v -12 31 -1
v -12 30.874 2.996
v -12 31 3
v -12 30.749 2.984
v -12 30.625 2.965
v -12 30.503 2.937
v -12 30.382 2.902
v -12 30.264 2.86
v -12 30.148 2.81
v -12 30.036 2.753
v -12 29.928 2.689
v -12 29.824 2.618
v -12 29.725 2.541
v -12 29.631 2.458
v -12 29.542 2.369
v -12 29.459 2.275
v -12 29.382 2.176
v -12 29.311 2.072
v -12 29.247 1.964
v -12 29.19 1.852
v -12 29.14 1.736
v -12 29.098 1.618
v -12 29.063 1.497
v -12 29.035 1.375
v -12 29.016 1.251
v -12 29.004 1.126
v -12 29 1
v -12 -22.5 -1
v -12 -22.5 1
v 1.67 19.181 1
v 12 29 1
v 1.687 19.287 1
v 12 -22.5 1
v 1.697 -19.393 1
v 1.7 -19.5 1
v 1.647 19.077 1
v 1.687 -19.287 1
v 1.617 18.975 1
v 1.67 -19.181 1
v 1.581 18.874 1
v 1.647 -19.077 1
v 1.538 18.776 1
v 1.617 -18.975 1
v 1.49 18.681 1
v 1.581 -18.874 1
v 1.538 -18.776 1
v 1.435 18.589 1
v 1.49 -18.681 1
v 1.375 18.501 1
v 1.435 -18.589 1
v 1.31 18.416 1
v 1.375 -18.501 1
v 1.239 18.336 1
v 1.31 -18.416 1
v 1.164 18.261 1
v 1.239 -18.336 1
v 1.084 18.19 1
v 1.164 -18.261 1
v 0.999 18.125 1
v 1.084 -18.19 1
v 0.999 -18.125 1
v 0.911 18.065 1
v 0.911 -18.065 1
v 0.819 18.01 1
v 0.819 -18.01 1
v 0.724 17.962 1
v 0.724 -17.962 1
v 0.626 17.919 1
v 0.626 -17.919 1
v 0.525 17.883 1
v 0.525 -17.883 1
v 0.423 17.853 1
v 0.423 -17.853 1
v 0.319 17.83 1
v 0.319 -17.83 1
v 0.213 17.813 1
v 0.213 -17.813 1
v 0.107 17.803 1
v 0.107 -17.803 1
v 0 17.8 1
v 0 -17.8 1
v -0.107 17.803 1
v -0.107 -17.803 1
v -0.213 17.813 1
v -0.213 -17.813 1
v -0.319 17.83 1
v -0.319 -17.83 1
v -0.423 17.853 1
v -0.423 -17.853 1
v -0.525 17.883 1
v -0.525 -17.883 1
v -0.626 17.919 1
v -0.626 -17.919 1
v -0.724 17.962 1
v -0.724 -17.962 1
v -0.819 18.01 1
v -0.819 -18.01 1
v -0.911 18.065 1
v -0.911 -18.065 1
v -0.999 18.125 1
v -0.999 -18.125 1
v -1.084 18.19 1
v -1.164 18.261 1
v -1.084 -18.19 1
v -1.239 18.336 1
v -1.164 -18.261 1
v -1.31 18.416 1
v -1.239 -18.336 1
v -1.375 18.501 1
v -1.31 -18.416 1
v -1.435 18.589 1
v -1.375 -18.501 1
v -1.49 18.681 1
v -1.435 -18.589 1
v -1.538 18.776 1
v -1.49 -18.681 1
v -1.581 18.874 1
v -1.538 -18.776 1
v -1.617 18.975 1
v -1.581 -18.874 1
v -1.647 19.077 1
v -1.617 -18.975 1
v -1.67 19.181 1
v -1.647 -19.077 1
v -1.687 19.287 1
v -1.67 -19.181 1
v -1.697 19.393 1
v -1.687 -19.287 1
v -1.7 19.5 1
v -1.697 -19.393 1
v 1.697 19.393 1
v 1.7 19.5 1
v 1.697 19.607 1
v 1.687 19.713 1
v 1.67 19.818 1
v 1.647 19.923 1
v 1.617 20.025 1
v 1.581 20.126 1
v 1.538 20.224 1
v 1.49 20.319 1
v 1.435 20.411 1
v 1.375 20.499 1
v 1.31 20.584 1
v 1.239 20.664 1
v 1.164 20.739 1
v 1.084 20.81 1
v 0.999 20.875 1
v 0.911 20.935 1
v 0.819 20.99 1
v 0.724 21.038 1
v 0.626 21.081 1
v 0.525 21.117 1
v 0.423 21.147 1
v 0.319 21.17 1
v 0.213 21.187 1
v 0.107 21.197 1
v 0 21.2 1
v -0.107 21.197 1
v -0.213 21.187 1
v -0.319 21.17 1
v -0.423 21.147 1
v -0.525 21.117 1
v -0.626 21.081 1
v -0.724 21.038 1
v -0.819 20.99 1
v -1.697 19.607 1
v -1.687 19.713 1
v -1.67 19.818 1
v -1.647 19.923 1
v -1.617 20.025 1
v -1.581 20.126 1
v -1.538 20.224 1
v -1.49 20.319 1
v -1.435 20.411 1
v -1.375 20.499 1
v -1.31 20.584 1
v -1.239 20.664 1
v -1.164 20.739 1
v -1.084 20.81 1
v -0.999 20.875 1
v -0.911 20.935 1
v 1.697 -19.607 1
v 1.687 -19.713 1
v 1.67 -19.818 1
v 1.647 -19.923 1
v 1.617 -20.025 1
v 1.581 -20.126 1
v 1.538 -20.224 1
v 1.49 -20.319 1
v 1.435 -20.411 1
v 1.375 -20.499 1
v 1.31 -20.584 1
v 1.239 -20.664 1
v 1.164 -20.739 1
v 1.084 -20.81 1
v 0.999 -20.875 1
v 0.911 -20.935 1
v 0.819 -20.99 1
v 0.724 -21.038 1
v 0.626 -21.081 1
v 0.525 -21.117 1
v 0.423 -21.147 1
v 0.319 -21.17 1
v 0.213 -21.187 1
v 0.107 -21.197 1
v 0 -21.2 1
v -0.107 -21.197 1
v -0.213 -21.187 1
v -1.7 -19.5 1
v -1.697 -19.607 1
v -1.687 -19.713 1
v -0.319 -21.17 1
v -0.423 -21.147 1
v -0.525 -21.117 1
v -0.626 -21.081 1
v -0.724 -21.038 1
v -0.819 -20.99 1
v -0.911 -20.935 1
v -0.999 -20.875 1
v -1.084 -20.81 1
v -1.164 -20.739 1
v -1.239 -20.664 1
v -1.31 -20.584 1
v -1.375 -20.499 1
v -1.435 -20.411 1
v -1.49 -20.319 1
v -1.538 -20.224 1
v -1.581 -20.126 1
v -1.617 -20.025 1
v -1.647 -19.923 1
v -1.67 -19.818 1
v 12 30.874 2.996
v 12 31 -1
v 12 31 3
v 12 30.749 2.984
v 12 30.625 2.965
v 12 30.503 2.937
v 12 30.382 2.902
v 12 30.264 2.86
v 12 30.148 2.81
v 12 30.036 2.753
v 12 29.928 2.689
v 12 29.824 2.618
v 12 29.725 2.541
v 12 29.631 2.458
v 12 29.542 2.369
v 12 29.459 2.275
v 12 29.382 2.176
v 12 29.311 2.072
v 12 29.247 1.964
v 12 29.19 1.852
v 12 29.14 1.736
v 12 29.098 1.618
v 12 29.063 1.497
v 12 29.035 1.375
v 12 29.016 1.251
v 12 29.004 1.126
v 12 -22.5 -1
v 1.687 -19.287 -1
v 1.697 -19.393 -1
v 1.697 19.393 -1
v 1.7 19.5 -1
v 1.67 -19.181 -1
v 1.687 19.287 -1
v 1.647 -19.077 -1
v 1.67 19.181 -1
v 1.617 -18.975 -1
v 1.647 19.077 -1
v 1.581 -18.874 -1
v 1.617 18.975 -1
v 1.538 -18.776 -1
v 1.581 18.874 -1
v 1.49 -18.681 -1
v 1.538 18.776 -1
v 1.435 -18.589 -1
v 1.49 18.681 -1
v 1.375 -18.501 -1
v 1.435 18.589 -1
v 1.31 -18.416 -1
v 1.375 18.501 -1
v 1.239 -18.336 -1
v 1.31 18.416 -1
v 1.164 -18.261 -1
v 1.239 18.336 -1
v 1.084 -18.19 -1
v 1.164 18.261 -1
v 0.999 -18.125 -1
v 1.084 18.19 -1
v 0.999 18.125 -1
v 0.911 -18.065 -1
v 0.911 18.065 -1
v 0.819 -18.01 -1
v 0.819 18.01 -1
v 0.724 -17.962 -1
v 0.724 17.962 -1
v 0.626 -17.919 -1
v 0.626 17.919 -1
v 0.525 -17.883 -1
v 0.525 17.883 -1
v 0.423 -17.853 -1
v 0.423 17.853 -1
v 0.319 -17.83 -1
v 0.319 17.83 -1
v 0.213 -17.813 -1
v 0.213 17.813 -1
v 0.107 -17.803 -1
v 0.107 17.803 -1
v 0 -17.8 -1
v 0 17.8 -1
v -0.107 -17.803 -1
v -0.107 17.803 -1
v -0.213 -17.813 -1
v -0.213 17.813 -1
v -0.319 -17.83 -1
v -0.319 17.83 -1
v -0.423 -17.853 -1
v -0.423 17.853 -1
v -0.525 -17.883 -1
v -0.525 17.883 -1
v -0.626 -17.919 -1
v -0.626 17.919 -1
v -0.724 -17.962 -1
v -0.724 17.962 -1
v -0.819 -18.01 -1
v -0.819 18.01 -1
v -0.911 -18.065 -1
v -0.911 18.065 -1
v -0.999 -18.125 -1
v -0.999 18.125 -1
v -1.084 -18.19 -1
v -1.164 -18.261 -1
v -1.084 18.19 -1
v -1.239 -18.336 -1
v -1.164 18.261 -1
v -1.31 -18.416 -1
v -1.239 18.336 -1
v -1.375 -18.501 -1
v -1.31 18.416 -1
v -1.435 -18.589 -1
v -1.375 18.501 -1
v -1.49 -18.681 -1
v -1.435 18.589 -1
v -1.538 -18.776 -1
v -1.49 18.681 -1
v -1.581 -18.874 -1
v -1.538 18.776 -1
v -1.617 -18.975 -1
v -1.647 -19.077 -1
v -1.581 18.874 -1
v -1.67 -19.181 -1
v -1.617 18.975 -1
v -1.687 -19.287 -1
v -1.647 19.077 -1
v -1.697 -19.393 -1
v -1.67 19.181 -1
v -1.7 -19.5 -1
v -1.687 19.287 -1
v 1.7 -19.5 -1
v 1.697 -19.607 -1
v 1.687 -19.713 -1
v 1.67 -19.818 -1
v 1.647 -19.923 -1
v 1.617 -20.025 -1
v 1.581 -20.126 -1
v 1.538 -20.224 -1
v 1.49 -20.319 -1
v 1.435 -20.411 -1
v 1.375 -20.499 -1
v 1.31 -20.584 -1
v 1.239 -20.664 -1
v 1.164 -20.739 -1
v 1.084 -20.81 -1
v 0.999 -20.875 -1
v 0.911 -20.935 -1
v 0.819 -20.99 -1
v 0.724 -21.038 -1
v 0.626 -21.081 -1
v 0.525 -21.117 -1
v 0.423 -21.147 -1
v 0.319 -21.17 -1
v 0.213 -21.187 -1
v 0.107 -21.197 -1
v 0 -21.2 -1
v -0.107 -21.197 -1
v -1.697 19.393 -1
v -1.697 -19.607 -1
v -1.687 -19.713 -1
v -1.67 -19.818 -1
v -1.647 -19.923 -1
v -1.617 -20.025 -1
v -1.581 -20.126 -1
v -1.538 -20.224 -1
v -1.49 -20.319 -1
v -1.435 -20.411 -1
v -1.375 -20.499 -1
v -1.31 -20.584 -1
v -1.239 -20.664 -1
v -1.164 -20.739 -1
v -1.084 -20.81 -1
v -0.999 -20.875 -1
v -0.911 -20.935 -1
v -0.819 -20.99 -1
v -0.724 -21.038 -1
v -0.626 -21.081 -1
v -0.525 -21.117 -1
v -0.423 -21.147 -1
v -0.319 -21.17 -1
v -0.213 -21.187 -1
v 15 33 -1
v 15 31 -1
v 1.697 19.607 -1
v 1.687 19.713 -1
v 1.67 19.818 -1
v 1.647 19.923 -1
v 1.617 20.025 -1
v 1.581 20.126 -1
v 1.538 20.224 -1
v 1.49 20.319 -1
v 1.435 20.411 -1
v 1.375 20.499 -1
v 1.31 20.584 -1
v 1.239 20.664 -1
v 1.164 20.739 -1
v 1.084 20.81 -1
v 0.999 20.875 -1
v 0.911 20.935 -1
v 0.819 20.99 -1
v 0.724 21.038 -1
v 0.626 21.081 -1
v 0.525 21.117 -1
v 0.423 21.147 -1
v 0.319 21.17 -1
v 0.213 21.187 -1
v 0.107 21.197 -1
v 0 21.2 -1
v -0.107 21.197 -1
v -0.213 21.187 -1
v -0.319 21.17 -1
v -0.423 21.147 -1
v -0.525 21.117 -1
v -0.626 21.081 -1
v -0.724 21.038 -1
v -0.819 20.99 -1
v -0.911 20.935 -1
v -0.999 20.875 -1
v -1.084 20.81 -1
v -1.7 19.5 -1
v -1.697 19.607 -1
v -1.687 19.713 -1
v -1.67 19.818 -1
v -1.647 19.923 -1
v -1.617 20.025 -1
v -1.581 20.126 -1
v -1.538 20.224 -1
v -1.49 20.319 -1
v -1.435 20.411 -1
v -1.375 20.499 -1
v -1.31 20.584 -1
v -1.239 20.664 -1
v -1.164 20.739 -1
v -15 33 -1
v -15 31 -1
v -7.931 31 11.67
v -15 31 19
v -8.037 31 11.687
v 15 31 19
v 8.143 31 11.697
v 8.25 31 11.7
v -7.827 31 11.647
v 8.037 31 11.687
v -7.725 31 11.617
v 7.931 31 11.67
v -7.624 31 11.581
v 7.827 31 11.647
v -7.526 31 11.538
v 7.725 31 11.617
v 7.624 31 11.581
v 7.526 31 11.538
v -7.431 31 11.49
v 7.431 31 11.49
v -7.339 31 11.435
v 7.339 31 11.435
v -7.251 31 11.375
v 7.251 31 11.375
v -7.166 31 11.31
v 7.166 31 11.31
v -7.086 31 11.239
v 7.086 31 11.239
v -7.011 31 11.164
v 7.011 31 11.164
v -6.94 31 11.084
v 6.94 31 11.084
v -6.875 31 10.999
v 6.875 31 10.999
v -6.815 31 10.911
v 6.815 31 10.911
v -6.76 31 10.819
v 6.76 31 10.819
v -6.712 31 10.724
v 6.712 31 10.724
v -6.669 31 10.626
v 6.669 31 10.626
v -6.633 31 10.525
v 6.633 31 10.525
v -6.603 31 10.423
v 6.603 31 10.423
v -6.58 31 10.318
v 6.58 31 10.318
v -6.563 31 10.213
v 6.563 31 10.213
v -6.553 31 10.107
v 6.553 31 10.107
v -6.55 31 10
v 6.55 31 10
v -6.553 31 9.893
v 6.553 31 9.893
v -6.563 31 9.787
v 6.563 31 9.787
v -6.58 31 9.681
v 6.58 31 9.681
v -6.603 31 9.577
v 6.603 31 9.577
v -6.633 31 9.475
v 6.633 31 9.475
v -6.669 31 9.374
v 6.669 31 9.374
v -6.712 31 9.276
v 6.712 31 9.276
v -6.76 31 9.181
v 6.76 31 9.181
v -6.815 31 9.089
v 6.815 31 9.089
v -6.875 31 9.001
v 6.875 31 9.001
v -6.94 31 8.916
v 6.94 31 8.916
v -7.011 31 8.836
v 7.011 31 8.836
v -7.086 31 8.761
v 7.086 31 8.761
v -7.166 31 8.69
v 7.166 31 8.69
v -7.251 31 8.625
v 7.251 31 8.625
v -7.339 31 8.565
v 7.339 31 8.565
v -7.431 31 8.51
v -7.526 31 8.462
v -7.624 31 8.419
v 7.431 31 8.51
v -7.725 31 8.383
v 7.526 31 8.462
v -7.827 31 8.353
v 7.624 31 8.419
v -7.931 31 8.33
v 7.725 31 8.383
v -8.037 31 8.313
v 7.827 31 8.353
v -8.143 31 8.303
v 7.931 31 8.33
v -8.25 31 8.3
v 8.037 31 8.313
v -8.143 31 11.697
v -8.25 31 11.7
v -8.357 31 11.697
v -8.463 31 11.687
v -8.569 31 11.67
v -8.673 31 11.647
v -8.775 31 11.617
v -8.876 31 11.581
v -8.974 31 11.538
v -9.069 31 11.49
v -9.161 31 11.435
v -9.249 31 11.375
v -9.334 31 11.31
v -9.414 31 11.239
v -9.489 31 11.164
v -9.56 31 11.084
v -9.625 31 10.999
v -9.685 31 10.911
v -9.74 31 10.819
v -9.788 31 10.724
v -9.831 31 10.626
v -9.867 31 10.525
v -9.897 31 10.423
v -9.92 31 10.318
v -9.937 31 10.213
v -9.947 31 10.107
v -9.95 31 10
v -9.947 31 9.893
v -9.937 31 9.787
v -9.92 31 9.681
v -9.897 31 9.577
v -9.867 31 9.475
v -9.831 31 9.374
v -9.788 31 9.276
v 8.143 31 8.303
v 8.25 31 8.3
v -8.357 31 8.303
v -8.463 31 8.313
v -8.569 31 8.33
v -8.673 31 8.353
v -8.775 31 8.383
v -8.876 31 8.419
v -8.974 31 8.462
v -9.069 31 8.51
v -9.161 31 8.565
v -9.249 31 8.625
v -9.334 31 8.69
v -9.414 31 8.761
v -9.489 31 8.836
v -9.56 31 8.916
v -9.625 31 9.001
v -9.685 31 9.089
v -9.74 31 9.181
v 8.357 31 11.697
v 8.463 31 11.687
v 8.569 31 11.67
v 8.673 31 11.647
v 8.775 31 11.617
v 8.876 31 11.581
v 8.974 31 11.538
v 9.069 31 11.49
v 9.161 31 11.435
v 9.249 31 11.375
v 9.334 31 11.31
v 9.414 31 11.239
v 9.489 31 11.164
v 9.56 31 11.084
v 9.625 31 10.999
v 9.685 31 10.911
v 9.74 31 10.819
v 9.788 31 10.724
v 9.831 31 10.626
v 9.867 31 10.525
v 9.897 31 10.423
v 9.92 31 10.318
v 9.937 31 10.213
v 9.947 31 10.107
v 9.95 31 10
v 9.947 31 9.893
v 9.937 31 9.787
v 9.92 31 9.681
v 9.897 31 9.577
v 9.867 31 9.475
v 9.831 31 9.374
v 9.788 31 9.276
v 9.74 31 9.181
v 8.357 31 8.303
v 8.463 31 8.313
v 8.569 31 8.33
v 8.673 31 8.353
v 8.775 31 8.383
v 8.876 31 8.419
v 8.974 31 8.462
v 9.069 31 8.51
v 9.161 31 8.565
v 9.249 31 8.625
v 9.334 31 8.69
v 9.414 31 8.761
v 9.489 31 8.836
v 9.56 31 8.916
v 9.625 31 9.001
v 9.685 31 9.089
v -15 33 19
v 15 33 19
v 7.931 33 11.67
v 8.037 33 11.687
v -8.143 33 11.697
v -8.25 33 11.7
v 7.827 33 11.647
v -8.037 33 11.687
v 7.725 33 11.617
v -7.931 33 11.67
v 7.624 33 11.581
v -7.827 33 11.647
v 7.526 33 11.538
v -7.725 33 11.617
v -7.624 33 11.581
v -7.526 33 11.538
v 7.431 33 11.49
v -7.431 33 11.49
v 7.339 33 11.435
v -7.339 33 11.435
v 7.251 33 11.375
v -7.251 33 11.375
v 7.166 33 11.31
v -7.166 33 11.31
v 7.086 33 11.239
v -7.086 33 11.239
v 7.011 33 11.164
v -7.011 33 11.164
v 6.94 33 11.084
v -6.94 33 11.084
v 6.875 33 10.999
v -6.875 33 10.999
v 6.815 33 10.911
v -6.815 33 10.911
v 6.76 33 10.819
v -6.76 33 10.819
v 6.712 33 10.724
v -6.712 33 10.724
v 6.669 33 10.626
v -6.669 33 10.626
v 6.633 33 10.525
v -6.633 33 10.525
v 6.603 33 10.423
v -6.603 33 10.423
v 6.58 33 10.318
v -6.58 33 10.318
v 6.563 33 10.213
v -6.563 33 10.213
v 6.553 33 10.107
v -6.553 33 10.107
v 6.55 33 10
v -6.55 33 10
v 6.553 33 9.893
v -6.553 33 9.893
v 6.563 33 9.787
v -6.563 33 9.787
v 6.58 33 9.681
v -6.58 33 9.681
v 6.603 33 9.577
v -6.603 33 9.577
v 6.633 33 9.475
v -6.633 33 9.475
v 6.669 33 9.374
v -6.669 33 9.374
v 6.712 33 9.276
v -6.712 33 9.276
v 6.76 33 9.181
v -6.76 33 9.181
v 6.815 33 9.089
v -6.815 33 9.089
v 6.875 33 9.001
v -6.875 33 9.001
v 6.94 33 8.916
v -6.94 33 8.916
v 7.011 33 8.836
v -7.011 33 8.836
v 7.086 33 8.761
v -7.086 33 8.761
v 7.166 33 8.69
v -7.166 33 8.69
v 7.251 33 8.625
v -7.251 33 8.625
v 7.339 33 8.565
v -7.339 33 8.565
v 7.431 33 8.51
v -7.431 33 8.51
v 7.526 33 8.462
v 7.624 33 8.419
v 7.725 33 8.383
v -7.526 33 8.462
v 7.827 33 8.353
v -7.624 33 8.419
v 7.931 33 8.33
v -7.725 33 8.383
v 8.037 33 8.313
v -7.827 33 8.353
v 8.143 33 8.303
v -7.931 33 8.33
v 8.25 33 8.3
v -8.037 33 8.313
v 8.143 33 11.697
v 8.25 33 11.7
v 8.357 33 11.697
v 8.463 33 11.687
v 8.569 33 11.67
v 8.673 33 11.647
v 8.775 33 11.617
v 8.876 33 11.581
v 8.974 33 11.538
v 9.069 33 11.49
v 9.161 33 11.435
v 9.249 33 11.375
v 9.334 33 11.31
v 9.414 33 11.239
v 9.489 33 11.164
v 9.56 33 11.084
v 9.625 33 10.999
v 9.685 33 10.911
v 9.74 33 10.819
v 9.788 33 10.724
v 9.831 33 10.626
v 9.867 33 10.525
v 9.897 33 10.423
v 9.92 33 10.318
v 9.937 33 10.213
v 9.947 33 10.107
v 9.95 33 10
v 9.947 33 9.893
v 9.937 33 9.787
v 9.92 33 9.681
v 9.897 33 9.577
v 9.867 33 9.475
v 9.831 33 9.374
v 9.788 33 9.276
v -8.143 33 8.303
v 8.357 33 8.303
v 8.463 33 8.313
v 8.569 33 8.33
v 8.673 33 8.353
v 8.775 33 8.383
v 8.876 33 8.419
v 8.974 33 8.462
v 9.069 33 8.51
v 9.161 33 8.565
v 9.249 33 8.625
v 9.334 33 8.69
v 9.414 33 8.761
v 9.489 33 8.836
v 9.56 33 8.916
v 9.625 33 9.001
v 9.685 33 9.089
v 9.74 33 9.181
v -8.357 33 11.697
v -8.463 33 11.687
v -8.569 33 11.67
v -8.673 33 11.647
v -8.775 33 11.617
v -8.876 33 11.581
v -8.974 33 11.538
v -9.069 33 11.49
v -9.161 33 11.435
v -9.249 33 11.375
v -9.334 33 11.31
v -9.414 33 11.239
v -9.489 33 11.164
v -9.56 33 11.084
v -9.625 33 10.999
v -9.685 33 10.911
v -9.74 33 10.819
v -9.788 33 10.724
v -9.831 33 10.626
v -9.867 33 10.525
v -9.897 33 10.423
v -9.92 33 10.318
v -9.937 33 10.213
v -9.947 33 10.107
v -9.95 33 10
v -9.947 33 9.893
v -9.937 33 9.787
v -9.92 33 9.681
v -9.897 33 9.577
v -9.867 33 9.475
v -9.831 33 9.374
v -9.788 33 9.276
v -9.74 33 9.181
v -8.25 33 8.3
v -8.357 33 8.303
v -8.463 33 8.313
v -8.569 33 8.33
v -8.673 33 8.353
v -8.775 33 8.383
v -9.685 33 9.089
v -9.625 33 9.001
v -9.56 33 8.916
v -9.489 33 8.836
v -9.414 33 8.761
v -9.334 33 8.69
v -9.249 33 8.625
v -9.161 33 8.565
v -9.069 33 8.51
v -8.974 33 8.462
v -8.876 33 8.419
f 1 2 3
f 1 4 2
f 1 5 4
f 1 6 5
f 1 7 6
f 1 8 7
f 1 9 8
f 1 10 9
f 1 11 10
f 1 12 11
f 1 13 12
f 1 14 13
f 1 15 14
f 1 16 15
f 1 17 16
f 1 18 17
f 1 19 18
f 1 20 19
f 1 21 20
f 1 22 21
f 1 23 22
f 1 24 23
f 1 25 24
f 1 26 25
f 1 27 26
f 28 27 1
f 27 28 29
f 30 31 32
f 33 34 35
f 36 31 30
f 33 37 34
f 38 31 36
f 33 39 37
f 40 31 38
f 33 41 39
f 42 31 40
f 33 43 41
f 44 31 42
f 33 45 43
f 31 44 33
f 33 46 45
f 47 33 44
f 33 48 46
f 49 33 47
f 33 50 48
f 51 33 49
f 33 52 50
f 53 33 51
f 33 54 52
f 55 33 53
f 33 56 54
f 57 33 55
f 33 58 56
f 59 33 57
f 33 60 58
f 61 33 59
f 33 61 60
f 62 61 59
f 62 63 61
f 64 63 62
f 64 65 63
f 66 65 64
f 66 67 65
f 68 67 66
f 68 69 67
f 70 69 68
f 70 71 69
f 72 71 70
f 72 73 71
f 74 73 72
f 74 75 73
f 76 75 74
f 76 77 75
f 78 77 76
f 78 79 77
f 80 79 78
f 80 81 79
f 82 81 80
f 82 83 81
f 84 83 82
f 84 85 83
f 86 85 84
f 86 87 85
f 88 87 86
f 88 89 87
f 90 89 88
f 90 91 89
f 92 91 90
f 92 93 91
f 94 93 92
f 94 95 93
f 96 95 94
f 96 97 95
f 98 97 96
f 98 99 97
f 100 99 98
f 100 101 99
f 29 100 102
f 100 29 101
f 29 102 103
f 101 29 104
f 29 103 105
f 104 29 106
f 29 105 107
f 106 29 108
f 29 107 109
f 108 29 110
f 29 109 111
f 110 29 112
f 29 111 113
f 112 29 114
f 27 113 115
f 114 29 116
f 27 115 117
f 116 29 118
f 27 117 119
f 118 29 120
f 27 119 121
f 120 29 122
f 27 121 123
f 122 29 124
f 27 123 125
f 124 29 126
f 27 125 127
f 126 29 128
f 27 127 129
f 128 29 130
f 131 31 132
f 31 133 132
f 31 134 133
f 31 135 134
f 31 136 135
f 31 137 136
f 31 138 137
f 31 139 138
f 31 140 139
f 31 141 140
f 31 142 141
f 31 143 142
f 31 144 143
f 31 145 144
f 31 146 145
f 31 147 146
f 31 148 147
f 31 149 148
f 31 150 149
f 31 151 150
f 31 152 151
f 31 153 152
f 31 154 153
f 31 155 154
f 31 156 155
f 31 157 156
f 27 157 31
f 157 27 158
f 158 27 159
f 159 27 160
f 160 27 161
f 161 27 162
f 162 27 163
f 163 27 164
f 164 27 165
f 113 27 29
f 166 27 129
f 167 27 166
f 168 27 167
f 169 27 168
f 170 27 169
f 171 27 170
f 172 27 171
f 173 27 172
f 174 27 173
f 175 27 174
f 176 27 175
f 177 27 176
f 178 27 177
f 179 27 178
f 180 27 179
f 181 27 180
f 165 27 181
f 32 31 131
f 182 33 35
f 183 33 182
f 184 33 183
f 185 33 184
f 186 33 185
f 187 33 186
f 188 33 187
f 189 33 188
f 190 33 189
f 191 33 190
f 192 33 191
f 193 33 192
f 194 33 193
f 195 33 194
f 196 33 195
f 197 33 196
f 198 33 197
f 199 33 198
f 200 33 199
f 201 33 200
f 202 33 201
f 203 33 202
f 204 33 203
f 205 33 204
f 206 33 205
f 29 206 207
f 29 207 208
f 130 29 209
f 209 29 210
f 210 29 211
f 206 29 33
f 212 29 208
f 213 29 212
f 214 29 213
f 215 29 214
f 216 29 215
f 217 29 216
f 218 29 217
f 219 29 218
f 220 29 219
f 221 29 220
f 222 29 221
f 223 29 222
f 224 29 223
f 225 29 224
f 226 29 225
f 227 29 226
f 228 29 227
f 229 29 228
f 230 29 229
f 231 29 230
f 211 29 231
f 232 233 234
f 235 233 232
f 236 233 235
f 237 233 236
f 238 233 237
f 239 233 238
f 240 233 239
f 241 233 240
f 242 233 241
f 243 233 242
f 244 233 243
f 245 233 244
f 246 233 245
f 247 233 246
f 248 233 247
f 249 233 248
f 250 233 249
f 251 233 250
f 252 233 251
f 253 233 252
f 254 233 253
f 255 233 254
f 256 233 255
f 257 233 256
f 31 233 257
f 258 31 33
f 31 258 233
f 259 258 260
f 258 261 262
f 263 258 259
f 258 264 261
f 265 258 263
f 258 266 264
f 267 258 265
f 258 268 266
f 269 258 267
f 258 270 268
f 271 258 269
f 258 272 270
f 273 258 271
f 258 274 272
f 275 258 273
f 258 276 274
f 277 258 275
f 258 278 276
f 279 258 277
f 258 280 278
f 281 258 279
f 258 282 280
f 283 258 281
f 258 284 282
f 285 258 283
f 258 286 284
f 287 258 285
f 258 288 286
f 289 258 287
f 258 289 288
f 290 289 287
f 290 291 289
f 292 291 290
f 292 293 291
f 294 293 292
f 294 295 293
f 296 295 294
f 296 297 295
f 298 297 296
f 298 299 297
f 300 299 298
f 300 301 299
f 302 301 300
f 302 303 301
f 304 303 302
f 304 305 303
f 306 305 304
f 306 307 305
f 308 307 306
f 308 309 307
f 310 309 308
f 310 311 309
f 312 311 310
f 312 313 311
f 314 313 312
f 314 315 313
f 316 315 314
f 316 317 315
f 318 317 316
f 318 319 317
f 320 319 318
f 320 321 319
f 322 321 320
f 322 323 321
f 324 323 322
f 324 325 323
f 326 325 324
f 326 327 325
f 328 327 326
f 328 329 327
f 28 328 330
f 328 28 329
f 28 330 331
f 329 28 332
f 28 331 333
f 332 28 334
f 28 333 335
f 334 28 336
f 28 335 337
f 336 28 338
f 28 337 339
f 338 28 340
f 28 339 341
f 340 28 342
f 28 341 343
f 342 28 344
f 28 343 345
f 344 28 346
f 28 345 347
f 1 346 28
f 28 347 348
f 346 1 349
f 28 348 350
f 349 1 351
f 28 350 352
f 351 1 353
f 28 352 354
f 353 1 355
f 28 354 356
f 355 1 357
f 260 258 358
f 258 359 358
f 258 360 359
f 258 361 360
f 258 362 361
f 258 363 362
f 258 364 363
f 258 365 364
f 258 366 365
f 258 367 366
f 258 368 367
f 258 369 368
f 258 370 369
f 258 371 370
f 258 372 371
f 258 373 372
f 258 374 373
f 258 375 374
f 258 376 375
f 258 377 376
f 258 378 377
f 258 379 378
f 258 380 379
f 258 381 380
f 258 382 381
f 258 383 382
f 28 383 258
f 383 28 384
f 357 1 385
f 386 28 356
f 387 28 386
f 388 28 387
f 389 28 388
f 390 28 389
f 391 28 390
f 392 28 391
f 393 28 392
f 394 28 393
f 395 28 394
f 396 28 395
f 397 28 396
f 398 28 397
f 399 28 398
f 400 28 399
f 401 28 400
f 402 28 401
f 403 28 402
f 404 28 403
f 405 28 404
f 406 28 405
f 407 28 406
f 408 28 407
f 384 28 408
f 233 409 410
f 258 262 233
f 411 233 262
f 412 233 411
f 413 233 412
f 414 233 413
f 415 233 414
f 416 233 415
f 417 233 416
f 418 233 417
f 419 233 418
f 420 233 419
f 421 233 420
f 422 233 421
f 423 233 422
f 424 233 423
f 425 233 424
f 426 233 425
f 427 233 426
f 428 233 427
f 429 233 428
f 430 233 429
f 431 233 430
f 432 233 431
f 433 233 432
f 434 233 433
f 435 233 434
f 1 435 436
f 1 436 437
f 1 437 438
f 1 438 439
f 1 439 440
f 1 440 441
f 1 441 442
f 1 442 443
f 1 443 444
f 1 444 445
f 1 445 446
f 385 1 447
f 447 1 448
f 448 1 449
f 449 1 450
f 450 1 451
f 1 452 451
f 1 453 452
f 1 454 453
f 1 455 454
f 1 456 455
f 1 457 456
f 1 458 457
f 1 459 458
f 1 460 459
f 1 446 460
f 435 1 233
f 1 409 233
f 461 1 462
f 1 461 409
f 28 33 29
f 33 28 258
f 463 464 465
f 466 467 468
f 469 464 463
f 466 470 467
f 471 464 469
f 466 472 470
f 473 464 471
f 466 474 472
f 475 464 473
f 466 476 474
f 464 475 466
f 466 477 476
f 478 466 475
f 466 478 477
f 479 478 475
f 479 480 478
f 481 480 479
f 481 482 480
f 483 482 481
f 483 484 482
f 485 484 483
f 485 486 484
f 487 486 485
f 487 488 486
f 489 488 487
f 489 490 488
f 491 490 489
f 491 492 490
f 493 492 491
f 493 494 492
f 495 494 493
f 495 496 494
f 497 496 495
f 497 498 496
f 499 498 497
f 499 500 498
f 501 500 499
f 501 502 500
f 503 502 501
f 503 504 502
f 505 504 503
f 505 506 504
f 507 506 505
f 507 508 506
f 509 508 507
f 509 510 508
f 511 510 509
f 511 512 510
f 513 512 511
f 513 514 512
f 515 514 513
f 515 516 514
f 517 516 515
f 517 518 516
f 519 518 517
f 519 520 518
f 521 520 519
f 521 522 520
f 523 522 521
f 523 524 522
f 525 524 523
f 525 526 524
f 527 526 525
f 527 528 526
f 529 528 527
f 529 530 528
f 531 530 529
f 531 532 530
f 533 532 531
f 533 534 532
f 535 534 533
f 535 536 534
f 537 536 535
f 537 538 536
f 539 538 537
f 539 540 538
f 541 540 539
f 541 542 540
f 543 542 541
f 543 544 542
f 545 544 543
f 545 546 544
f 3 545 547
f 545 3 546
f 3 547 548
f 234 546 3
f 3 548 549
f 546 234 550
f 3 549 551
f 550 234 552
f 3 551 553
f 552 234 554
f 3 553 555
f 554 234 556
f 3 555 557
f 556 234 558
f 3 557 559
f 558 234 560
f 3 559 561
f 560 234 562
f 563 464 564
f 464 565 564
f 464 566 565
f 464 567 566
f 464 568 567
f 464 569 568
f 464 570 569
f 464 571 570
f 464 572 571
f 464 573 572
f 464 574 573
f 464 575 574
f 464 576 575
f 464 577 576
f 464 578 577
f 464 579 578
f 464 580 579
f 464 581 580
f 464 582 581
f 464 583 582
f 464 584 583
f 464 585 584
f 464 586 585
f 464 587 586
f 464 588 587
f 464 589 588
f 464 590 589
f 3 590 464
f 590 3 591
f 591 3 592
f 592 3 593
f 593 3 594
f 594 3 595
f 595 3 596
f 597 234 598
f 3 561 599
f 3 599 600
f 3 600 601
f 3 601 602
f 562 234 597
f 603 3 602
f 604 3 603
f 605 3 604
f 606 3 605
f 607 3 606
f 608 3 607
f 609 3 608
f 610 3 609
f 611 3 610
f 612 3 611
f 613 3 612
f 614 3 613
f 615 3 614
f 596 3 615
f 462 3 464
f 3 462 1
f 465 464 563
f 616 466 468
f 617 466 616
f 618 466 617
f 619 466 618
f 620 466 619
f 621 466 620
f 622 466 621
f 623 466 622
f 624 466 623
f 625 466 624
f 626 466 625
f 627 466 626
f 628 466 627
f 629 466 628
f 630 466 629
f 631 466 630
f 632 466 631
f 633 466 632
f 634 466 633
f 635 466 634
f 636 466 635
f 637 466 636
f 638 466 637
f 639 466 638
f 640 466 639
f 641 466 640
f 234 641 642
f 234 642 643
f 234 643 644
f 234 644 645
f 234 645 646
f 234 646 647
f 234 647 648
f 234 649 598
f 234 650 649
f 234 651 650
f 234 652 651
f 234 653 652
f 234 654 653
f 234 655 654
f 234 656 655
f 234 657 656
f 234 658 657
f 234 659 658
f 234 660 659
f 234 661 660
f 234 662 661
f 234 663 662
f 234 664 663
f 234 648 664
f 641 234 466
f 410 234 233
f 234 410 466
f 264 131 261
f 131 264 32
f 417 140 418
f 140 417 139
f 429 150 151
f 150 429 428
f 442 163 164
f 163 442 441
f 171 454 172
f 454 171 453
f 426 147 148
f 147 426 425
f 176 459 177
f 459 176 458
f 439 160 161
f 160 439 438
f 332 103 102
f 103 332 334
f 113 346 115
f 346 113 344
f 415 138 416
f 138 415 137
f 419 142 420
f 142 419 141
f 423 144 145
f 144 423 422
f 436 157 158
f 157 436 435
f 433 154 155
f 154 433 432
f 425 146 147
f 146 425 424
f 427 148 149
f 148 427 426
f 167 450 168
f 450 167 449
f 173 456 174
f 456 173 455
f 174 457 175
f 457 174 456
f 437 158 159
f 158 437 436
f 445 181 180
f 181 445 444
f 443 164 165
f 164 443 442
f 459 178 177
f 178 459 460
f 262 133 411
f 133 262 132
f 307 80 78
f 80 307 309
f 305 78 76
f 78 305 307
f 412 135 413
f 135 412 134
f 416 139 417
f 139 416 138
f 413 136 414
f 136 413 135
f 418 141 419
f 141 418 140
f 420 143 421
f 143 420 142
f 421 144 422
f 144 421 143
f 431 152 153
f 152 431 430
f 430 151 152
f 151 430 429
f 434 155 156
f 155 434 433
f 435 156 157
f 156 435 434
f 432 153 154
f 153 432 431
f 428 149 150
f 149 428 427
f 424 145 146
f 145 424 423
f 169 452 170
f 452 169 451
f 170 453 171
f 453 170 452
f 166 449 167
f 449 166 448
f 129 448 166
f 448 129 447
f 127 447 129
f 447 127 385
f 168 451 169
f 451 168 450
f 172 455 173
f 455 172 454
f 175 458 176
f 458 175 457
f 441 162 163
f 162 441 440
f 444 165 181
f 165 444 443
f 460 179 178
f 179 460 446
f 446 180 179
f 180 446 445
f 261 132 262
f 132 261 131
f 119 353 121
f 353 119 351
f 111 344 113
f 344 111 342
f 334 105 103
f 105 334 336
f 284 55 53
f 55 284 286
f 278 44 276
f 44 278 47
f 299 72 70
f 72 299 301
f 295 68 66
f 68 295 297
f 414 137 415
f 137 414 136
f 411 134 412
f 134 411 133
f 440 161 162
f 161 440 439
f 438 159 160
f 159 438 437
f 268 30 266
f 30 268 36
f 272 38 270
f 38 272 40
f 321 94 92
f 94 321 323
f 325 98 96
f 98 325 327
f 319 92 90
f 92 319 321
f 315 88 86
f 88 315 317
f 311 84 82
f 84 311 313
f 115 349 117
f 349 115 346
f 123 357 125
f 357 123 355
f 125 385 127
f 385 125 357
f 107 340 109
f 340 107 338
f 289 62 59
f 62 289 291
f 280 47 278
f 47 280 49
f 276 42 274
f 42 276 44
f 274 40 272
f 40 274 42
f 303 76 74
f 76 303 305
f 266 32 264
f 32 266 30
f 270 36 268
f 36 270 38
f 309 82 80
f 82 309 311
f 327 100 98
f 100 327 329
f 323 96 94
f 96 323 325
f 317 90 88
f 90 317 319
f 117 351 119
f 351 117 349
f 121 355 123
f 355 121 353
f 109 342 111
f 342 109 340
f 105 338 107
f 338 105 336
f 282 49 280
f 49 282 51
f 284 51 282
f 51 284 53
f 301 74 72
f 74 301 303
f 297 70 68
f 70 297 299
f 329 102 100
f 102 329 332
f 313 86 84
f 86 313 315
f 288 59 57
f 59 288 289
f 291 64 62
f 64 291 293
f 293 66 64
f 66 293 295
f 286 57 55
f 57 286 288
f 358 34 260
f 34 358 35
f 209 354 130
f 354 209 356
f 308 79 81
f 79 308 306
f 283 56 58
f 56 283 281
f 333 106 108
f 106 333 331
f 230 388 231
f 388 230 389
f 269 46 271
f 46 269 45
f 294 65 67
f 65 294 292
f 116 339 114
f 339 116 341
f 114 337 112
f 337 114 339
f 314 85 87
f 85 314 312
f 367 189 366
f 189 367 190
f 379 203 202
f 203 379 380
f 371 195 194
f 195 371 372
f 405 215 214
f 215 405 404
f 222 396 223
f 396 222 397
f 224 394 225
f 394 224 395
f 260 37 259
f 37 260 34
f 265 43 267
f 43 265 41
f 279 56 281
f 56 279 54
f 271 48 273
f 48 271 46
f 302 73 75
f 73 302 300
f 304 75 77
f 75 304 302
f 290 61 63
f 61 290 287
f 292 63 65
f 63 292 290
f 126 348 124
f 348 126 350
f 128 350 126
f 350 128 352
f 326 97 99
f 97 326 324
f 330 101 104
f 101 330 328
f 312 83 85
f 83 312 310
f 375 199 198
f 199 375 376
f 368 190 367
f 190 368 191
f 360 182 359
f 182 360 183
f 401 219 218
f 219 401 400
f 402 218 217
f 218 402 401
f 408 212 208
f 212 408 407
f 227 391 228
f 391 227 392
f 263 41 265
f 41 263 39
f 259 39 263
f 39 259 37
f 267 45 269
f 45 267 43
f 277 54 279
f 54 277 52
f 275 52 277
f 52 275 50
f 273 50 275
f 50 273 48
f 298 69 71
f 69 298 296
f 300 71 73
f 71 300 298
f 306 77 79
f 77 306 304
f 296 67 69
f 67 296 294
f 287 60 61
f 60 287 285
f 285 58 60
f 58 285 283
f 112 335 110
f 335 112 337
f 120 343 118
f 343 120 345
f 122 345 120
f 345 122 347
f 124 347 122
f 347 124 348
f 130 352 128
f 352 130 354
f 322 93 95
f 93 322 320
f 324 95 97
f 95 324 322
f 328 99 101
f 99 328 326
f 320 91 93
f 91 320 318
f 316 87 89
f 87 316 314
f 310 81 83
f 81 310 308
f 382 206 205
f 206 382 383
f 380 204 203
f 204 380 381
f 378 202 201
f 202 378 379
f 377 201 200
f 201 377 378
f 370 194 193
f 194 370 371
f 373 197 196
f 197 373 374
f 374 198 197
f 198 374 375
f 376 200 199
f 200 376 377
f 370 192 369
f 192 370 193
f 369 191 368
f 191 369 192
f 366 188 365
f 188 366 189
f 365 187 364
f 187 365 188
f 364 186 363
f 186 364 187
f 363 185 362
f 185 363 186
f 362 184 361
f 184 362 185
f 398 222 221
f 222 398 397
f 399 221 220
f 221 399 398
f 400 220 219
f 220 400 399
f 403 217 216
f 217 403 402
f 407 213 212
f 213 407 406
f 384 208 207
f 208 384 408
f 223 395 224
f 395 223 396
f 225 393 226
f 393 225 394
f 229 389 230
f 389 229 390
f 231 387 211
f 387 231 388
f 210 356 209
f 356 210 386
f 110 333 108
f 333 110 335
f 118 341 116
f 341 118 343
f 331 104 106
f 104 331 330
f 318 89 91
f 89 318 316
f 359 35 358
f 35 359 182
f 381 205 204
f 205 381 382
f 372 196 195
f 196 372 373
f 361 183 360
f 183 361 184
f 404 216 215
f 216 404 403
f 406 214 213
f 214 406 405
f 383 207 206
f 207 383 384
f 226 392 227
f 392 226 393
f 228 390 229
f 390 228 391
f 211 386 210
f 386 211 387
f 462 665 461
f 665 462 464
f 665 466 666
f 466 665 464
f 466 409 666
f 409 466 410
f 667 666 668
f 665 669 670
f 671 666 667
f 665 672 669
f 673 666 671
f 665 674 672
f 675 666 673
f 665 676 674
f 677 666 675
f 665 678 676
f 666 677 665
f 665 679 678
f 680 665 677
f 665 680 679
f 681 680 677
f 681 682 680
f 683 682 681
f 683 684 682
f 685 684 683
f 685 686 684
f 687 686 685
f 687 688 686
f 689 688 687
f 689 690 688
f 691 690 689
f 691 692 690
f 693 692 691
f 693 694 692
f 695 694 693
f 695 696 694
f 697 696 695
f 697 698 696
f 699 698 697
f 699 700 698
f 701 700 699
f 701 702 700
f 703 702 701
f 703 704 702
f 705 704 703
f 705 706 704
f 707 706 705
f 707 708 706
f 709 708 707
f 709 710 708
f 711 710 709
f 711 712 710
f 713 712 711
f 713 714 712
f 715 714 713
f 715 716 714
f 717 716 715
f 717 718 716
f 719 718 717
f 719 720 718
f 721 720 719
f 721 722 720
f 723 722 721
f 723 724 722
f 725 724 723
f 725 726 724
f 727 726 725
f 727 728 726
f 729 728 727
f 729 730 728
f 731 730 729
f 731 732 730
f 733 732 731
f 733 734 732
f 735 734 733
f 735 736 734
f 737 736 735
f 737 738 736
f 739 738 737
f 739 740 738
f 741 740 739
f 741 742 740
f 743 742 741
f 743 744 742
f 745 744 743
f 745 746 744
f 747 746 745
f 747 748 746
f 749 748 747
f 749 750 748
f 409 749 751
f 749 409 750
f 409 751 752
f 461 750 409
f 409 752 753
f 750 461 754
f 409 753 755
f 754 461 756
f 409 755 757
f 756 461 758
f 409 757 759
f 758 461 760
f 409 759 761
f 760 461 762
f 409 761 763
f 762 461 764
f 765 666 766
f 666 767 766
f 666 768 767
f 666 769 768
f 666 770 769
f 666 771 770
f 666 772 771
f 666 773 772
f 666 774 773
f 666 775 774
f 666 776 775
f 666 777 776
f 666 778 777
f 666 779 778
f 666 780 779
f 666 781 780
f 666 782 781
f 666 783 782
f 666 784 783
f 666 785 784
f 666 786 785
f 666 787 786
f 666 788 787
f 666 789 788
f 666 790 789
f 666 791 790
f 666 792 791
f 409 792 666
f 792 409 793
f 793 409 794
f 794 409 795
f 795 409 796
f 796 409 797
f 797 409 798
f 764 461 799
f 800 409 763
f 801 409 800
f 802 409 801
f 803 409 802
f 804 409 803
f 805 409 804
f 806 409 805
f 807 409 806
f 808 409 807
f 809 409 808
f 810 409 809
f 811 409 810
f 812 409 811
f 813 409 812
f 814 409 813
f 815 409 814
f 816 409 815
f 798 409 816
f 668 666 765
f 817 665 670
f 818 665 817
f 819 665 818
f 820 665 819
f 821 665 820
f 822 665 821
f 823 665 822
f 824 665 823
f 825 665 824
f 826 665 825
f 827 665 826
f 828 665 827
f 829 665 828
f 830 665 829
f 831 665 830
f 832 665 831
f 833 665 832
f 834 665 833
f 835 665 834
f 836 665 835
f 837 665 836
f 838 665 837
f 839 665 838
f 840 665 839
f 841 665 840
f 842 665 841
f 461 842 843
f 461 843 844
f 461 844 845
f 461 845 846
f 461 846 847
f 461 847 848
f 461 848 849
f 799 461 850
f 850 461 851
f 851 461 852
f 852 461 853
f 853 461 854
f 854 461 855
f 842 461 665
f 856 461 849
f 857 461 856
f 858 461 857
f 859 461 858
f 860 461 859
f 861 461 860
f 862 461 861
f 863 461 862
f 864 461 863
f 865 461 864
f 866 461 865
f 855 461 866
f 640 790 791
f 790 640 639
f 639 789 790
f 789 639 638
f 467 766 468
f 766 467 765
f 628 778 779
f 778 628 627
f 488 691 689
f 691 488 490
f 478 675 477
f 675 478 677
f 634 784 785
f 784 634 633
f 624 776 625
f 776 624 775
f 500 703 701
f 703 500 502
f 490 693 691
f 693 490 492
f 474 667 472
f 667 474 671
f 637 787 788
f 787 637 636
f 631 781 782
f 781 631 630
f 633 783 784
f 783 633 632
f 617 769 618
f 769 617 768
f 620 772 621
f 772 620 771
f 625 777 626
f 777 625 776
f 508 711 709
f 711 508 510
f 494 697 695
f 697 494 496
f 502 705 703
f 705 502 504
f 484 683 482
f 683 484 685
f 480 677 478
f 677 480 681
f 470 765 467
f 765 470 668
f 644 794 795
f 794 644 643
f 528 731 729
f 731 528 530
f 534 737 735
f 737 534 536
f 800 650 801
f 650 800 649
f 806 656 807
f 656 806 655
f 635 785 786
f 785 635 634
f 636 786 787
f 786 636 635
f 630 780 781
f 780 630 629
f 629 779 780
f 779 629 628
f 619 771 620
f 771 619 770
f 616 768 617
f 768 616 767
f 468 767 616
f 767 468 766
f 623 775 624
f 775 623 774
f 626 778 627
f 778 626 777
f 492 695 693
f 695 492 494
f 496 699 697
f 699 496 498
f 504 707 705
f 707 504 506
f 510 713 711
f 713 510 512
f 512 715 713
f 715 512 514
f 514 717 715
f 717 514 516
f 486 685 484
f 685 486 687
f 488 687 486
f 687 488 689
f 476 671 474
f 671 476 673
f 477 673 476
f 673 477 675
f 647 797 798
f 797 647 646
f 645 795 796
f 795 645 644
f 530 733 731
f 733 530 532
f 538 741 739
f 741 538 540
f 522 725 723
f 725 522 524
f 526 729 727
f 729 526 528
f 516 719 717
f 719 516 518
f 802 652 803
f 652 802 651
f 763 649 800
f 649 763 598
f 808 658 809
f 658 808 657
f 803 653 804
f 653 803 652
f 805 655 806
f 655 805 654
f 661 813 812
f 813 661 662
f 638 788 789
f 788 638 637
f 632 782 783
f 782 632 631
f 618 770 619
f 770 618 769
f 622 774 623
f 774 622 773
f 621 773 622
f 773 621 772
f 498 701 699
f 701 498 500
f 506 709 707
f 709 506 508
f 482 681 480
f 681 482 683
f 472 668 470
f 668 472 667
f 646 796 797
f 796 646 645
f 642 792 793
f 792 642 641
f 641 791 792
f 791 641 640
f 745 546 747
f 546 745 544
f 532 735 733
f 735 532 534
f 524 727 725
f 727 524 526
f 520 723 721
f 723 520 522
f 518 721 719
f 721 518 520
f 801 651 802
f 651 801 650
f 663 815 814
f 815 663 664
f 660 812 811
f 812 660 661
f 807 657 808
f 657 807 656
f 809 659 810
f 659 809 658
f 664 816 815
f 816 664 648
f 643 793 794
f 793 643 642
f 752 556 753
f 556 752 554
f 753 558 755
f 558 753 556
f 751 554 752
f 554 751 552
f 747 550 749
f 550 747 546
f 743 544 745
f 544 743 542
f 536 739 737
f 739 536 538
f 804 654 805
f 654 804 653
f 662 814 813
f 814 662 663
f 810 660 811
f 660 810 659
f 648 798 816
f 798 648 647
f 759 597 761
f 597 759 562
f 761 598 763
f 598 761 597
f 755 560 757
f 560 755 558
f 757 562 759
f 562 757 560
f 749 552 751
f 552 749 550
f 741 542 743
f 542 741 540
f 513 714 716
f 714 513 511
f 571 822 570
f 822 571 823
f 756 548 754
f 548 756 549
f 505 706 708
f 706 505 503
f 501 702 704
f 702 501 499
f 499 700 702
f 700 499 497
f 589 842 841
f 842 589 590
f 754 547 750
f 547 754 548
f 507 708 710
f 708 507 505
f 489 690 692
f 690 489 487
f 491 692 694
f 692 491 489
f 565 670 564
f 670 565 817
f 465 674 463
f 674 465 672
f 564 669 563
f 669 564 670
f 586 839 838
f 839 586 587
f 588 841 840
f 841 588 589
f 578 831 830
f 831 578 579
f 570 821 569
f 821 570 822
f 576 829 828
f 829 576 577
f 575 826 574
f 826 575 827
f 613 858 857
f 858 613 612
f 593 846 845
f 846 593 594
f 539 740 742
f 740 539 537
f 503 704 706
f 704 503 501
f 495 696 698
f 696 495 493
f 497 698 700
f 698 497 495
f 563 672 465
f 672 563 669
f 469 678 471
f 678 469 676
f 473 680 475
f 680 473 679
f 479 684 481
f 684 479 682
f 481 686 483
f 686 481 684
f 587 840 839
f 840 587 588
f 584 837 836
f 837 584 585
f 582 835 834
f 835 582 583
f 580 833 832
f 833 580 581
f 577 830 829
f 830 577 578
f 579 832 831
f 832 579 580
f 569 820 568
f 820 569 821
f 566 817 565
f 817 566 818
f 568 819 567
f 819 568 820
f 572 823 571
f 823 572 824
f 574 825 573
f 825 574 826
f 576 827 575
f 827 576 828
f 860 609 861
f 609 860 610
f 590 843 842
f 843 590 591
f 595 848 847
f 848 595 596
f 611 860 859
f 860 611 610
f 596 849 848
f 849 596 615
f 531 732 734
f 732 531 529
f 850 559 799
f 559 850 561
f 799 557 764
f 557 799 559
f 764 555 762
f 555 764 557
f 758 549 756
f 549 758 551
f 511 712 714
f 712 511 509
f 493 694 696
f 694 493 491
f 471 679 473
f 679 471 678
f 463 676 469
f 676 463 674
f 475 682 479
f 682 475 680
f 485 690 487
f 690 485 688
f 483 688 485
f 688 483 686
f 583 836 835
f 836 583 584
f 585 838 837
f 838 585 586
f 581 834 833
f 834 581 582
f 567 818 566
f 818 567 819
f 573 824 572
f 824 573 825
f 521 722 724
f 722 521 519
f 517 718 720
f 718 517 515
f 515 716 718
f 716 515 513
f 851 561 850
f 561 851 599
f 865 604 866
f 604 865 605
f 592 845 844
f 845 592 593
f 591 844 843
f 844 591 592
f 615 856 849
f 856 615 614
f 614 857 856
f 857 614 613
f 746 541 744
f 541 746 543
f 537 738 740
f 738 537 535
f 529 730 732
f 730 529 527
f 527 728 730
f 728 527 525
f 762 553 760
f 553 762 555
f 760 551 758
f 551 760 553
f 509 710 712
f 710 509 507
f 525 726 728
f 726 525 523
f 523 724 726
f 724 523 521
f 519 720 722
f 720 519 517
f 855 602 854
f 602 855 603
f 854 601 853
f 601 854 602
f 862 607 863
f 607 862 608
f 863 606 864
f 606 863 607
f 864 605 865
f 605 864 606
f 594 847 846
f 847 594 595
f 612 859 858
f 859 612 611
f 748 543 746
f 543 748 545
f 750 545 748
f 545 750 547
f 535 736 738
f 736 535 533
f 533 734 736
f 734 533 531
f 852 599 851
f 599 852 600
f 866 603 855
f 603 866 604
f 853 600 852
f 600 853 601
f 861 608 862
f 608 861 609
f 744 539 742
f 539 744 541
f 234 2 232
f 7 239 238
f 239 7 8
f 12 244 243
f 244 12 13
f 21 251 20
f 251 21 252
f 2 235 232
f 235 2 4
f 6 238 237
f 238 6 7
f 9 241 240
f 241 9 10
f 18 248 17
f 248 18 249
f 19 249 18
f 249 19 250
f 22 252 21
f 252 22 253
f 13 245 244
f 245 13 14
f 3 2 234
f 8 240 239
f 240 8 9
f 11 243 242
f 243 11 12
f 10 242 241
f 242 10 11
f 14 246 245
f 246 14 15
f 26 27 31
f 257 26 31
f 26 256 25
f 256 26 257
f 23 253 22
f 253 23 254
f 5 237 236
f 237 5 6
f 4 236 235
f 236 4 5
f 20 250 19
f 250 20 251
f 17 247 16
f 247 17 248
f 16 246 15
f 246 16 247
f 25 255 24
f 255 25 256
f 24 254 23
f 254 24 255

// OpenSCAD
/*
    Scanner para análisis tridimensional de cobertura vegetal del suelo
    
    Descripción de la pieza: Soporte para la cadena de desplazamiento horizontal
    Cantidad requerida: 1.

    Autor: Matias J. Micheletto    
    Junio 2018
    Directores: Rodrigo Santos - Juan Galantini
    Laboratorio de Sistemas Digitales
    Universidad Nacional del Sur - Departamento de Ingeniería Eléctrica y Computadoras    
*/

$fn = 100; // Resolucion del modelo

// Dimensiones exteriores del montaje
W = 24; // Ancho (en direccion X)
L = 45; // Largo (en direccion Y)
H = 2; // Alto (en direccion Z)
Hp = 20; // Altura de la pieza vertical
delta = 8.5; // Desplazamiento de la pieza vertical

// Tornillos
Rp = 1.7; // Radio de los orificios para tornillos
s = 1.3; // Separacion entre el orificio y el borde de la pieza

union(){
    difference(){    
        // Base
        translate([0,delta/2,0])
            cube([W,L+delta,H], center = true);

        // Agujeros para tornillos de ajuste al carro
        translate([0,L/2-Rp-s,0])
            cylinder(r = Rp, h = H, center = true);
        translate([0,-L/2+Rp+s,0])
            cylinder(r = Rp, h = H, center = true);
    }

    difference(){
        // Soporte vertical
        translate([0,L/2+H/2+delta,Hp/2-H/2])
            cube([W+6,H,Hp], center = true);

        // Agujeros para tornillos de ajuste a la cadena
        translate([16.5/2,L/2+delta+H/2,Hp/2])
        rotate([90,0,0])
            cylinder(r = Rp, h = H, center = true);
        translate([-16.5/2,L/2+delta+H/2,Hp/2])
        rotate([90,0,0])
            cylinder(r = Rp, h = H, center = true);
    }

    // Soporte
    translate([0,L/2+delta,H/2])
    rotate([0,90,0])
        cylinder(r = H,h = W,center = true);
}
